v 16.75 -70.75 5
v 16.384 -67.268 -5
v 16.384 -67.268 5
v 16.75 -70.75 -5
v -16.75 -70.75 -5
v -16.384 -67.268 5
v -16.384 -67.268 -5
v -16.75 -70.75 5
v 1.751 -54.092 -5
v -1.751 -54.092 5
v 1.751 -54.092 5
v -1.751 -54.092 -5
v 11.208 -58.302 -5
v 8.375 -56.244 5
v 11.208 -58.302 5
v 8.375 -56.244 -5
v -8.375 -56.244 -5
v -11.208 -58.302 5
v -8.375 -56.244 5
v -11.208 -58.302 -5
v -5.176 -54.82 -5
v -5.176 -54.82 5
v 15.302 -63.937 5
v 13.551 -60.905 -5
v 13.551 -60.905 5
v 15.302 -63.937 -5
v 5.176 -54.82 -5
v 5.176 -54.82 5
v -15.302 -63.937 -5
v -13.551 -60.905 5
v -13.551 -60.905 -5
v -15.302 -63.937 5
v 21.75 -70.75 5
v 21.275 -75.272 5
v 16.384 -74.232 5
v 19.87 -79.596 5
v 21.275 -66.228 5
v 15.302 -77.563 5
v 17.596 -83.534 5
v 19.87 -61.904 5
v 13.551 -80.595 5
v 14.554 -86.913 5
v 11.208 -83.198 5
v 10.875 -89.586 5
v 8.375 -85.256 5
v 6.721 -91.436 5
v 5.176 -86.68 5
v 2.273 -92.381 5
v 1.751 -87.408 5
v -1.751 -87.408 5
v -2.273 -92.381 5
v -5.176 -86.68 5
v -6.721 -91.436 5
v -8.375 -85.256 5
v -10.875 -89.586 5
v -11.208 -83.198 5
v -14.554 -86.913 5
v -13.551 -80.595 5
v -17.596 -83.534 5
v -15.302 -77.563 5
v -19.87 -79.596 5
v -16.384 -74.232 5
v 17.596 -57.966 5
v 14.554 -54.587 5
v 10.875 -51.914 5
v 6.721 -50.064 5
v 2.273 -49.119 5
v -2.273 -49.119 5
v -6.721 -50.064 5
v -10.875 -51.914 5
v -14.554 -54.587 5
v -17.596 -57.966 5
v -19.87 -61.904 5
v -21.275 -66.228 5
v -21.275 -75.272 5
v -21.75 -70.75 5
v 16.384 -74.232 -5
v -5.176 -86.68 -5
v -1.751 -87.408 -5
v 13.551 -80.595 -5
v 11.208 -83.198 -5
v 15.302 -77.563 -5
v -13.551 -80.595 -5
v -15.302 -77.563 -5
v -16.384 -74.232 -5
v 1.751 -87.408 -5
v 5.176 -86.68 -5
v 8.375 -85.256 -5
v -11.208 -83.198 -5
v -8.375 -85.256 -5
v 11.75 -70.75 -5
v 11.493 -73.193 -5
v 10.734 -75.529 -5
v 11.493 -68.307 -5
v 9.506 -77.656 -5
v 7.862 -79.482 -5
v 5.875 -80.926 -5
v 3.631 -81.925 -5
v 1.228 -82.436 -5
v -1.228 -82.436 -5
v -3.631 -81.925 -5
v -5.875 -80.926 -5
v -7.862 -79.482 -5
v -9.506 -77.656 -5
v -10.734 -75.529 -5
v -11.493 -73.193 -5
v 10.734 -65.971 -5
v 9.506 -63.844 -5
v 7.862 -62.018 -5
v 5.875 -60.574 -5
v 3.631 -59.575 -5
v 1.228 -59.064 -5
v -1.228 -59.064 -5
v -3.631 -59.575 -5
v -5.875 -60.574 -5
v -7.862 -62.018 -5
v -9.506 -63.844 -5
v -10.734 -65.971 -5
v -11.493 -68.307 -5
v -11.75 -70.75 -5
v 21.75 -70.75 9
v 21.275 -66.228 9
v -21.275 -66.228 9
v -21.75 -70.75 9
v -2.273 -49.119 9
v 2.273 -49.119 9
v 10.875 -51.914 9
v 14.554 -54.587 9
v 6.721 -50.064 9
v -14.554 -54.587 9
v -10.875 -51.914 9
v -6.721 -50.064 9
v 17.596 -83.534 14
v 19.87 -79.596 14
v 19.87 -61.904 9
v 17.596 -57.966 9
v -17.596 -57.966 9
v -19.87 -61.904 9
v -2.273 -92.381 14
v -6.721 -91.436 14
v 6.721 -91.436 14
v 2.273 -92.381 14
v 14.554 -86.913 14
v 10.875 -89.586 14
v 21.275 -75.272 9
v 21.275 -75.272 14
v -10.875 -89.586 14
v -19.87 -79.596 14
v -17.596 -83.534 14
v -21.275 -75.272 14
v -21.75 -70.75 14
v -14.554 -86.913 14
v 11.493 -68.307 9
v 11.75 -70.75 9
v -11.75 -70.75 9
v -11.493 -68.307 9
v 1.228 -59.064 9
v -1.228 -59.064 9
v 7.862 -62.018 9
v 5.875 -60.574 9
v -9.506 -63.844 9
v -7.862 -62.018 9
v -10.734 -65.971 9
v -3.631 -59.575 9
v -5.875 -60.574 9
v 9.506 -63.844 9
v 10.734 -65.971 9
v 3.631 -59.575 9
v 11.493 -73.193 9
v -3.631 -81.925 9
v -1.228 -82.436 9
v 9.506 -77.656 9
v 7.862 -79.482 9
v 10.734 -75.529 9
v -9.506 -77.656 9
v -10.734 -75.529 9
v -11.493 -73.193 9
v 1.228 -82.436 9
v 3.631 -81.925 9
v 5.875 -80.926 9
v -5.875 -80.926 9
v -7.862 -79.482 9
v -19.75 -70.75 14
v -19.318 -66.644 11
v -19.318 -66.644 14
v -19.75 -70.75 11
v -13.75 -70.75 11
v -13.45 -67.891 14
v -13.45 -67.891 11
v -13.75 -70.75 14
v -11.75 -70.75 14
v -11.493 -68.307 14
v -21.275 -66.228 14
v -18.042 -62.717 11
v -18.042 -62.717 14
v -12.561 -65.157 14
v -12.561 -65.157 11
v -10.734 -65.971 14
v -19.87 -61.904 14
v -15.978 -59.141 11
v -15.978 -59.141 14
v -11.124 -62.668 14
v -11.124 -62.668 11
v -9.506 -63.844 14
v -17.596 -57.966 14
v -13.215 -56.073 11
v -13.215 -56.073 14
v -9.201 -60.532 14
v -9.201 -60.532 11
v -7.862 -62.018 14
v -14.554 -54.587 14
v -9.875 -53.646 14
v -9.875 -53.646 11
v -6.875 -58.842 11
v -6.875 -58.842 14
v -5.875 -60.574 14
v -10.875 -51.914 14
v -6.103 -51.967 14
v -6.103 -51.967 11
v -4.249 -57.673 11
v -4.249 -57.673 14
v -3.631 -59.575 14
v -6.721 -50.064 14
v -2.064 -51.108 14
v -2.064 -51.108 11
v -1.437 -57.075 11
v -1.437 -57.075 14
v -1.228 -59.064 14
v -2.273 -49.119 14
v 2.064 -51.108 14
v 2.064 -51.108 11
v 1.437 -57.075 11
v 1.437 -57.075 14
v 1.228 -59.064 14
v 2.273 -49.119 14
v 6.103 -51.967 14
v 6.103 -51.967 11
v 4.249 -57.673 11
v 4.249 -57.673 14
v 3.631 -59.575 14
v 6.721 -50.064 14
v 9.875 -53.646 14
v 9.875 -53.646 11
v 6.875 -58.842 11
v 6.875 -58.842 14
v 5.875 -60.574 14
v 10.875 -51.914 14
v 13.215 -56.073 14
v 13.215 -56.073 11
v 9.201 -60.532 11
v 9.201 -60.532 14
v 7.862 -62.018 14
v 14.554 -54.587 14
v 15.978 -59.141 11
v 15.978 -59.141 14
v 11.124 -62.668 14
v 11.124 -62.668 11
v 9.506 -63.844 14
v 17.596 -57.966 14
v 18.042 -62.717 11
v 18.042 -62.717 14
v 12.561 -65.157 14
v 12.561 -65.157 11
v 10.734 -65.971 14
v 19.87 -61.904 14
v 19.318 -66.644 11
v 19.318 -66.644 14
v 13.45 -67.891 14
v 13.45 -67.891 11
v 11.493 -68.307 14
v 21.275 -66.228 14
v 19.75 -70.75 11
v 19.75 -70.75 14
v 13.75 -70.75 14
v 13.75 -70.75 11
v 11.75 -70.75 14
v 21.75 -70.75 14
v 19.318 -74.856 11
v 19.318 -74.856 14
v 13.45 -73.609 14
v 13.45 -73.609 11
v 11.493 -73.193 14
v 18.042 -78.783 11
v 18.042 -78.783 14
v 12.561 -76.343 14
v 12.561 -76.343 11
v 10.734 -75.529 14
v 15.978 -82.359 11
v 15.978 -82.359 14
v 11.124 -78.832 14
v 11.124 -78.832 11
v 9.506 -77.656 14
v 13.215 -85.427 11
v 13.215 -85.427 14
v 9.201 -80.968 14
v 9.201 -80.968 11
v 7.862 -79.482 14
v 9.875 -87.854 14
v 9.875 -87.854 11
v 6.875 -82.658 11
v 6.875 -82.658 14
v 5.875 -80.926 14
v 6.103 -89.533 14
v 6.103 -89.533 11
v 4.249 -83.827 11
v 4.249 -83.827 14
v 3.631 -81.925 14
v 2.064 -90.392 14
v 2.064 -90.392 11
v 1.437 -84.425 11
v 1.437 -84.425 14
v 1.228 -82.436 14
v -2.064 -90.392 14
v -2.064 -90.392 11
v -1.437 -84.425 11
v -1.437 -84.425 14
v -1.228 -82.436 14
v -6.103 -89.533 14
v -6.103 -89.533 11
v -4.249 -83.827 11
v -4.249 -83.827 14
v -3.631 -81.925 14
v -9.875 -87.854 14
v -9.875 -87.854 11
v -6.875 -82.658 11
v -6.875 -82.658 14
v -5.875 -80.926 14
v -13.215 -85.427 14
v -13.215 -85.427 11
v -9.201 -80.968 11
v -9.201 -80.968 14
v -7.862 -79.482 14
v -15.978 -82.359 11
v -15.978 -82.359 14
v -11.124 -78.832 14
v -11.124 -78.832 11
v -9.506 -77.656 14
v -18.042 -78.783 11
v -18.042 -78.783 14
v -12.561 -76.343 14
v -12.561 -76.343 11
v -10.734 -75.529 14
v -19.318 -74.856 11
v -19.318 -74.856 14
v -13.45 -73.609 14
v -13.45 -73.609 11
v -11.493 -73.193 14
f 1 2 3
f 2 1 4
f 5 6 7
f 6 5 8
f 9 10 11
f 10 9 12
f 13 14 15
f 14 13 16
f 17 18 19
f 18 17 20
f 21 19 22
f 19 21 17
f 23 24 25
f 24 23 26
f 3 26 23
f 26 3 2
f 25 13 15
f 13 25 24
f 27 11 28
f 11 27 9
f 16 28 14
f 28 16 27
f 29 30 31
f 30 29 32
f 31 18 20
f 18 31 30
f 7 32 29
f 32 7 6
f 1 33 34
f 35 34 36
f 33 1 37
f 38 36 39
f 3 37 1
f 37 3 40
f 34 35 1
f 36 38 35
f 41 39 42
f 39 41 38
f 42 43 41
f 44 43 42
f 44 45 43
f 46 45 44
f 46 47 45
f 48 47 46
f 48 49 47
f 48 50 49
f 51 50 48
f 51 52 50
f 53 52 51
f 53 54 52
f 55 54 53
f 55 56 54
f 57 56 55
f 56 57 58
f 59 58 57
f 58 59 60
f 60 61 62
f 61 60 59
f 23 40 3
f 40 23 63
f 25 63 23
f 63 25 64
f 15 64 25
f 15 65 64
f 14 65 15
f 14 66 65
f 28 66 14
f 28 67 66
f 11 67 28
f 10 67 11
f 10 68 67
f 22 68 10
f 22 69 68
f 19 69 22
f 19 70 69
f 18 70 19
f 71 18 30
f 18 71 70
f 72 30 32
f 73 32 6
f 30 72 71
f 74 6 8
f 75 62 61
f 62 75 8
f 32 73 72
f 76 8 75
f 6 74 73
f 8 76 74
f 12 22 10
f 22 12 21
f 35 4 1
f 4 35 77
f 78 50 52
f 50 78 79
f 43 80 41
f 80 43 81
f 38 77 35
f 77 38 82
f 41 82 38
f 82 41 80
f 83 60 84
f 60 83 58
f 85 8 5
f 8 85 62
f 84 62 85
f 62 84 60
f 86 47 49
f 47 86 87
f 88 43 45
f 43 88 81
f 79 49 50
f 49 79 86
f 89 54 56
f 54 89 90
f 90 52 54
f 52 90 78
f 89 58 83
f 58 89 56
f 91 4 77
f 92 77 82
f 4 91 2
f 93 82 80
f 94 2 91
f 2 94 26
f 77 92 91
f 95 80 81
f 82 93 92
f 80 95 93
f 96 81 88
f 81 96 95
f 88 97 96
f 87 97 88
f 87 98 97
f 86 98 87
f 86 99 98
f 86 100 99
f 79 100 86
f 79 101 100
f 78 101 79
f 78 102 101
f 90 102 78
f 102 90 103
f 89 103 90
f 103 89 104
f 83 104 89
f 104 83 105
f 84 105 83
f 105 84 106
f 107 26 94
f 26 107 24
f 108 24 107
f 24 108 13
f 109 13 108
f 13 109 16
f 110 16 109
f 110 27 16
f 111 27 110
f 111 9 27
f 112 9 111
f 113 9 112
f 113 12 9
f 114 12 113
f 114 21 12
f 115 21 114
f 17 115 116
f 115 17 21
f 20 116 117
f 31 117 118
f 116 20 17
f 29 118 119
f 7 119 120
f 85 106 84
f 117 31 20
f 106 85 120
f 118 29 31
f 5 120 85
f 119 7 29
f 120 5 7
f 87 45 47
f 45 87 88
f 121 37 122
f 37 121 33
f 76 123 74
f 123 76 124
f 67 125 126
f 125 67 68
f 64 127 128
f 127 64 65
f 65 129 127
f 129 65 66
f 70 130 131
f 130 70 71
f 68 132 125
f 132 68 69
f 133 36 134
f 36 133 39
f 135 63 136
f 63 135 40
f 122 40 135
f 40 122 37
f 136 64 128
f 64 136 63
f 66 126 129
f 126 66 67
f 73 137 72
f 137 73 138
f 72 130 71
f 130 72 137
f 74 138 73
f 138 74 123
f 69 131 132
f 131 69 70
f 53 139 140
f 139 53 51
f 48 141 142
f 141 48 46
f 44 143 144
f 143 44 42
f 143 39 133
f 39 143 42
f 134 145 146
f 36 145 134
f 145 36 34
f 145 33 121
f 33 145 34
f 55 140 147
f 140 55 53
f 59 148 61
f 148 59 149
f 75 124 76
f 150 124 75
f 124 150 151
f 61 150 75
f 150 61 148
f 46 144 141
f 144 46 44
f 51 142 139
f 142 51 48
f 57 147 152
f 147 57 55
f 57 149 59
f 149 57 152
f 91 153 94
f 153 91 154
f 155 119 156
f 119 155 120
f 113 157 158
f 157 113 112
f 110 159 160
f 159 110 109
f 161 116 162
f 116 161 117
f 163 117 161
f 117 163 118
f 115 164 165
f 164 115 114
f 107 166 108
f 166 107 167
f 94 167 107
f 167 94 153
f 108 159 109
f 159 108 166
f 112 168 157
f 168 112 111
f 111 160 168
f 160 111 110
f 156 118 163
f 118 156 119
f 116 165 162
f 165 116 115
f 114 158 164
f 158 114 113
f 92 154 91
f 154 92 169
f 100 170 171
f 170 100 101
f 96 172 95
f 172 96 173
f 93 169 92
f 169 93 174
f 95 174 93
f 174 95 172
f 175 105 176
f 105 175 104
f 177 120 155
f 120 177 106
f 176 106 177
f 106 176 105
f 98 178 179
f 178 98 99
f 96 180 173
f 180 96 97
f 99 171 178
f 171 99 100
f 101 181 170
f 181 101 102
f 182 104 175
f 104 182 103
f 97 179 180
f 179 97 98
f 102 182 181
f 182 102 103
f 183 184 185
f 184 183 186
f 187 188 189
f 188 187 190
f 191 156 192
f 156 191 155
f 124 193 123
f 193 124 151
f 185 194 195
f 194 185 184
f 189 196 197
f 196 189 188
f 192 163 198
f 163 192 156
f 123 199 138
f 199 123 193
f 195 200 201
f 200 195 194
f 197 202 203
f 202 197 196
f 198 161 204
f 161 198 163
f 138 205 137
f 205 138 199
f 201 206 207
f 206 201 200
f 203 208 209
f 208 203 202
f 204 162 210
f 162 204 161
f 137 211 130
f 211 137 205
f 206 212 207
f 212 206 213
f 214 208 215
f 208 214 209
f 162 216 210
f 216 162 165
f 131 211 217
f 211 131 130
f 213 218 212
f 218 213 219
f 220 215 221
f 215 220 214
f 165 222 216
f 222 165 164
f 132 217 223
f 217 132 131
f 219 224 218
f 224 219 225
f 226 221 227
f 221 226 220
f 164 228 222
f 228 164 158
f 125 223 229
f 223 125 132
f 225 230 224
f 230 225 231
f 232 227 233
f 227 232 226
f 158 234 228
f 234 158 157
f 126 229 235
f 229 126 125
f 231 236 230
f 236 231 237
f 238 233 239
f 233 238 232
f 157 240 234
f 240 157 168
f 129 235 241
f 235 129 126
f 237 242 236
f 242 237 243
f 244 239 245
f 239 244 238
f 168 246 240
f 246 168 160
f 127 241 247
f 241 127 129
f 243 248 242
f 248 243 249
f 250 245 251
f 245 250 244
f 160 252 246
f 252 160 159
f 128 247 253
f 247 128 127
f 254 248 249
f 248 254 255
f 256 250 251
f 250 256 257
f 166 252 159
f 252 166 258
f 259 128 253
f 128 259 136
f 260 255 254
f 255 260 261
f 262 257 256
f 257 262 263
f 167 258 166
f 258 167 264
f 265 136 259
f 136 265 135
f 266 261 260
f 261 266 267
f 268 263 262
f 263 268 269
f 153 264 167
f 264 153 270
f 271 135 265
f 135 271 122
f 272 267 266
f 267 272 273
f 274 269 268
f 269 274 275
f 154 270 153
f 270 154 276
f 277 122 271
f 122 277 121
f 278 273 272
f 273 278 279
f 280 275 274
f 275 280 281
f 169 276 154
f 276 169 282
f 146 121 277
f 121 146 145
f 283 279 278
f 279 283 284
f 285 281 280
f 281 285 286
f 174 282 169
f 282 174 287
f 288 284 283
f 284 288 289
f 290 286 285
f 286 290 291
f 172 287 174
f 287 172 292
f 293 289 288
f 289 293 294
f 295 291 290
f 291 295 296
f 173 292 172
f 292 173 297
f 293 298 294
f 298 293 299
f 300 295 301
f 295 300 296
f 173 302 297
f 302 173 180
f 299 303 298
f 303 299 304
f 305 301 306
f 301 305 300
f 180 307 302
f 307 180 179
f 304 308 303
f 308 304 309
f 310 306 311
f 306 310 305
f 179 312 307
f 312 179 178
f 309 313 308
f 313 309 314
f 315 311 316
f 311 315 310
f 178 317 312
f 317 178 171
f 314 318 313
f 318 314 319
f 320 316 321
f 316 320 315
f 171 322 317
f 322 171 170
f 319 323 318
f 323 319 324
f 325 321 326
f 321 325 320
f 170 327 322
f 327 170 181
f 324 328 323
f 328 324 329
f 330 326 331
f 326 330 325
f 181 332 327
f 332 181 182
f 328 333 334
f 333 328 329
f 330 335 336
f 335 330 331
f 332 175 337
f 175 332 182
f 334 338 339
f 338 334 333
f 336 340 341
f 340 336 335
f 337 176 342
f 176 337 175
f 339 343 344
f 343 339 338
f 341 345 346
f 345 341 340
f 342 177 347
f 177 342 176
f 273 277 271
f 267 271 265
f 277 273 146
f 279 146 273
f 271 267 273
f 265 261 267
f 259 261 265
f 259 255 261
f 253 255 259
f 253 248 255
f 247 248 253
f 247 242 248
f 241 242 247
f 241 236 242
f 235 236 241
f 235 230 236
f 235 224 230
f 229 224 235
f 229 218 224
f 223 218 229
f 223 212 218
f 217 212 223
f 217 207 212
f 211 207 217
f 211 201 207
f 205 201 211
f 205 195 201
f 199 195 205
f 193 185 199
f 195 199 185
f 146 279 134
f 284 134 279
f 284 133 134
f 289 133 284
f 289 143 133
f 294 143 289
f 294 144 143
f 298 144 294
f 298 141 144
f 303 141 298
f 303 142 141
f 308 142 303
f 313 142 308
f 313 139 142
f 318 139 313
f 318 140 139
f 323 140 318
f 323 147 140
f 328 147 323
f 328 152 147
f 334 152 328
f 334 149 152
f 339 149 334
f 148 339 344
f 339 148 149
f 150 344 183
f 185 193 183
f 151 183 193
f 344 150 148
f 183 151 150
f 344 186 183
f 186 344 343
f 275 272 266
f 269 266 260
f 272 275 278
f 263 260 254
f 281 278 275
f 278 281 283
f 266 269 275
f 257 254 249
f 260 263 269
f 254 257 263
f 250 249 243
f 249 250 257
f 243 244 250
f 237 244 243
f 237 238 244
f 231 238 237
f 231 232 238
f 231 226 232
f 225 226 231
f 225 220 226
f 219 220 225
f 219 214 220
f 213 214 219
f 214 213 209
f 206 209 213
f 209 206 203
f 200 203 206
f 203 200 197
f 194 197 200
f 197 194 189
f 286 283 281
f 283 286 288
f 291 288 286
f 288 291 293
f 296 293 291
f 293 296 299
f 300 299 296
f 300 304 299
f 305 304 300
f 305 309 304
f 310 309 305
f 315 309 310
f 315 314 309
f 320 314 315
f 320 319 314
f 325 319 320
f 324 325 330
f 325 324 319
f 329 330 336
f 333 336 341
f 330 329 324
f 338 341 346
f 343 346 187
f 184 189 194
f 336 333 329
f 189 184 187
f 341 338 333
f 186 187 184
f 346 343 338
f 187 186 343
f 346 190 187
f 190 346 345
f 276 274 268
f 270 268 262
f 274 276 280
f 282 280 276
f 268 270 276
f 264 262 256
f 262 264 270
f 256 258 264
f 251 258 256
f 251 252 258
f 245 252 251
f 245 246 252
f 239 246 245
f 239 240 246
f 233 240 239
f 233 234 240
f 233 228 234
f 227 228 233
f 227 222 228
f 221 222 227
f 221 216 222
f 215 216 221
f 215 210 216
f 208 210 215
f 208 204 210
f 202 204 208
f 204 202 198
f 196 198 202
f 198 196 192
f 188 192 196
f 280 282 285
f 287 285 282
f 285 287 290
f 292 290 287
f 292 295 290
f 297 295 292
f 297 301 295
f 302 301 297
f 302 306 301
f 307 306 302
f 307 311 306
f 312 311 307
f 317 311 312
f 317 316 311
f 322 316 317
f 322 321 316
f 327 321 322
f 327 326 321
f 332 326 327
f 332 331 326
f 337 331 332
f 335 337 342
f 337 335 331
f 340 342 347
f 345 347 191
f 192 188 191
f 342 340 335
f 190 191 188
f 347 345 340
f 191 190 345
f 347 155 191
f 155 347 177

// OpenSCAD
// file: hangon_clickin.scad
include <servo.scad>
include <parameters.scad>

//%back_holes();

module hangon(){
    //support
    mirror_copy([1,0,0])translate([hangon_support_distance,-hangon_support_length/2-(contact_delta/2)+5,-(5-(top_component_height*0.5))/2])
    cube([round(top_component_width*0.1),hangon_support_length+contact_delta,top_component_height*0.5], true);

    //base
    translate([0,shaft_center,0])
    difference(){
        cube([hangon_base_diameter,hangon_base_diameter,5], true);
        cylinder(10, hangon_base_diameter/2-5, hangon_base_diameter/2-5, true);
    }
}
// file: parameters.scad
//parameters

//base
back_length = 10;
outer_width = 20;
outer_length = 36+back_length;
inner_width = 12;
inner_length = 25;
base_height = 6;
front_offset = round((outer_length-inner_length)/2)-4;
back_component_length = 10;
back_component_height = 50;
back_offset = outer_length/2+back_component_length/2;
top_component_height = 8;
top_component_width = 40;

//hangon
contact_delta = 50;
hangon_support_length = 8;
hangon_support_delta = 2.5;
hangon_support_distance = (top_component_width/2-round((top_component_width*0.1)/2)-hangon_support_delta);
shaft_center = (-hangon_support_length-((hangon_support_distance+10)/2))-contact_delta;
hangon_base_diameter = hangon_support_distance+30;

//fixture
top_part_diplacement = 8;
leg_width = 2;
clickon_height = 2;
// file: servo.scad
//parameters
servo_width = 12;
servo_length = 24;
servo_height = 24;
ex_length = 5;
ex_height = 4;
shaft_offset = 5;
shaft_radius = 5;
shaft_height = 5;

module mirror_copy(vec=[0,1,0]){
    children();
    mirror(vec)children();
}

module back_holes(){
    mirror_copy([1,0,0])translate([top_component_width/2-round((top_component_width*0.1)/2)-3,0,0])
    cube([round(top_component_width*0.15),back_component_length,top_component_height*0.6], true);    
}

module servo(){
    translate([0,0,servo_height/2])
    union(){
        //extrusion
        mirror_copy()
            translate([0,servo_length/2+ex_length/2,(servo_height/2)-ex_height/2])
                cube([servo_width, ex_length, ex_height], true);
        //shaft
        translate([0,-servo_length/2+shaft_radius,servo_height/2+shaft_height/2])
        cylinder(shaft_height, shaft_radius, shaft_radius, true);
        //base
        cube([servo_width, servo_length, servo_height], true);
    }
}
// main file
include <servo.scad>
include <parameters.scad>
include <hangon_clickin.scad>

%hangon();
shaft_hole_width = hangon_base_diameter/2-5;
holder_width = shaft_hole_width-1;
holder_height = 10;
bearing_pit_width = holder_width+5;
bearing_pit_height = 4;
shaft_hole_radius = holder_width-5;
wall_width = 2;
wall_height = 5;
pit_width = 10;

translate([0,shaft_center,0])
union(){
    difference(){
        //base
        union(){
            //holder
            cylinder(holder_height, holder_width, holder_width, true);
            //bearing pit base
            translate([0,0,holder_height/2+bearing_pit_height/2])
            cylinder(bearing_pit_height, bearing_pit_width, bearing_pit_width, true);
        }
        //shaft hole
        translate([0,0,bearing_pit_height/2])
        cylinder(holder_height+bearing_pit_height, shaft_hole_radius, shaft_hole_radius, true);
    }
}
//bearing pit
translate([0,shaft_center,-(shaft_hole_radius-(holder_height/2+bearing_pit_height))])
rotate_extrude(angle = 360, convexity = 10){
    polygon(points=[[shaft_hole_radius,shaft_hole_radius], [shaft_hole_radius+pit_width, shaft_hole_radius], [shaft_hole_radius+pit_width, shaft_hole_radius+wall_height], [shaft_hole_radius+pit_width-wall_width,shaft_hole_radius+wall_height], [shaft_hole_radius+pit_width-wall_width,shaft_hole_radius+wall_width], [shaft_hole_radius+wall_width,shaft_hole_radius+wall_width], [shaft_hole_radius+wall_width,shaft_hole_radius+wall_height], [shaft_hole_radius,shaft_hole_radius+wall_height]]);
};
